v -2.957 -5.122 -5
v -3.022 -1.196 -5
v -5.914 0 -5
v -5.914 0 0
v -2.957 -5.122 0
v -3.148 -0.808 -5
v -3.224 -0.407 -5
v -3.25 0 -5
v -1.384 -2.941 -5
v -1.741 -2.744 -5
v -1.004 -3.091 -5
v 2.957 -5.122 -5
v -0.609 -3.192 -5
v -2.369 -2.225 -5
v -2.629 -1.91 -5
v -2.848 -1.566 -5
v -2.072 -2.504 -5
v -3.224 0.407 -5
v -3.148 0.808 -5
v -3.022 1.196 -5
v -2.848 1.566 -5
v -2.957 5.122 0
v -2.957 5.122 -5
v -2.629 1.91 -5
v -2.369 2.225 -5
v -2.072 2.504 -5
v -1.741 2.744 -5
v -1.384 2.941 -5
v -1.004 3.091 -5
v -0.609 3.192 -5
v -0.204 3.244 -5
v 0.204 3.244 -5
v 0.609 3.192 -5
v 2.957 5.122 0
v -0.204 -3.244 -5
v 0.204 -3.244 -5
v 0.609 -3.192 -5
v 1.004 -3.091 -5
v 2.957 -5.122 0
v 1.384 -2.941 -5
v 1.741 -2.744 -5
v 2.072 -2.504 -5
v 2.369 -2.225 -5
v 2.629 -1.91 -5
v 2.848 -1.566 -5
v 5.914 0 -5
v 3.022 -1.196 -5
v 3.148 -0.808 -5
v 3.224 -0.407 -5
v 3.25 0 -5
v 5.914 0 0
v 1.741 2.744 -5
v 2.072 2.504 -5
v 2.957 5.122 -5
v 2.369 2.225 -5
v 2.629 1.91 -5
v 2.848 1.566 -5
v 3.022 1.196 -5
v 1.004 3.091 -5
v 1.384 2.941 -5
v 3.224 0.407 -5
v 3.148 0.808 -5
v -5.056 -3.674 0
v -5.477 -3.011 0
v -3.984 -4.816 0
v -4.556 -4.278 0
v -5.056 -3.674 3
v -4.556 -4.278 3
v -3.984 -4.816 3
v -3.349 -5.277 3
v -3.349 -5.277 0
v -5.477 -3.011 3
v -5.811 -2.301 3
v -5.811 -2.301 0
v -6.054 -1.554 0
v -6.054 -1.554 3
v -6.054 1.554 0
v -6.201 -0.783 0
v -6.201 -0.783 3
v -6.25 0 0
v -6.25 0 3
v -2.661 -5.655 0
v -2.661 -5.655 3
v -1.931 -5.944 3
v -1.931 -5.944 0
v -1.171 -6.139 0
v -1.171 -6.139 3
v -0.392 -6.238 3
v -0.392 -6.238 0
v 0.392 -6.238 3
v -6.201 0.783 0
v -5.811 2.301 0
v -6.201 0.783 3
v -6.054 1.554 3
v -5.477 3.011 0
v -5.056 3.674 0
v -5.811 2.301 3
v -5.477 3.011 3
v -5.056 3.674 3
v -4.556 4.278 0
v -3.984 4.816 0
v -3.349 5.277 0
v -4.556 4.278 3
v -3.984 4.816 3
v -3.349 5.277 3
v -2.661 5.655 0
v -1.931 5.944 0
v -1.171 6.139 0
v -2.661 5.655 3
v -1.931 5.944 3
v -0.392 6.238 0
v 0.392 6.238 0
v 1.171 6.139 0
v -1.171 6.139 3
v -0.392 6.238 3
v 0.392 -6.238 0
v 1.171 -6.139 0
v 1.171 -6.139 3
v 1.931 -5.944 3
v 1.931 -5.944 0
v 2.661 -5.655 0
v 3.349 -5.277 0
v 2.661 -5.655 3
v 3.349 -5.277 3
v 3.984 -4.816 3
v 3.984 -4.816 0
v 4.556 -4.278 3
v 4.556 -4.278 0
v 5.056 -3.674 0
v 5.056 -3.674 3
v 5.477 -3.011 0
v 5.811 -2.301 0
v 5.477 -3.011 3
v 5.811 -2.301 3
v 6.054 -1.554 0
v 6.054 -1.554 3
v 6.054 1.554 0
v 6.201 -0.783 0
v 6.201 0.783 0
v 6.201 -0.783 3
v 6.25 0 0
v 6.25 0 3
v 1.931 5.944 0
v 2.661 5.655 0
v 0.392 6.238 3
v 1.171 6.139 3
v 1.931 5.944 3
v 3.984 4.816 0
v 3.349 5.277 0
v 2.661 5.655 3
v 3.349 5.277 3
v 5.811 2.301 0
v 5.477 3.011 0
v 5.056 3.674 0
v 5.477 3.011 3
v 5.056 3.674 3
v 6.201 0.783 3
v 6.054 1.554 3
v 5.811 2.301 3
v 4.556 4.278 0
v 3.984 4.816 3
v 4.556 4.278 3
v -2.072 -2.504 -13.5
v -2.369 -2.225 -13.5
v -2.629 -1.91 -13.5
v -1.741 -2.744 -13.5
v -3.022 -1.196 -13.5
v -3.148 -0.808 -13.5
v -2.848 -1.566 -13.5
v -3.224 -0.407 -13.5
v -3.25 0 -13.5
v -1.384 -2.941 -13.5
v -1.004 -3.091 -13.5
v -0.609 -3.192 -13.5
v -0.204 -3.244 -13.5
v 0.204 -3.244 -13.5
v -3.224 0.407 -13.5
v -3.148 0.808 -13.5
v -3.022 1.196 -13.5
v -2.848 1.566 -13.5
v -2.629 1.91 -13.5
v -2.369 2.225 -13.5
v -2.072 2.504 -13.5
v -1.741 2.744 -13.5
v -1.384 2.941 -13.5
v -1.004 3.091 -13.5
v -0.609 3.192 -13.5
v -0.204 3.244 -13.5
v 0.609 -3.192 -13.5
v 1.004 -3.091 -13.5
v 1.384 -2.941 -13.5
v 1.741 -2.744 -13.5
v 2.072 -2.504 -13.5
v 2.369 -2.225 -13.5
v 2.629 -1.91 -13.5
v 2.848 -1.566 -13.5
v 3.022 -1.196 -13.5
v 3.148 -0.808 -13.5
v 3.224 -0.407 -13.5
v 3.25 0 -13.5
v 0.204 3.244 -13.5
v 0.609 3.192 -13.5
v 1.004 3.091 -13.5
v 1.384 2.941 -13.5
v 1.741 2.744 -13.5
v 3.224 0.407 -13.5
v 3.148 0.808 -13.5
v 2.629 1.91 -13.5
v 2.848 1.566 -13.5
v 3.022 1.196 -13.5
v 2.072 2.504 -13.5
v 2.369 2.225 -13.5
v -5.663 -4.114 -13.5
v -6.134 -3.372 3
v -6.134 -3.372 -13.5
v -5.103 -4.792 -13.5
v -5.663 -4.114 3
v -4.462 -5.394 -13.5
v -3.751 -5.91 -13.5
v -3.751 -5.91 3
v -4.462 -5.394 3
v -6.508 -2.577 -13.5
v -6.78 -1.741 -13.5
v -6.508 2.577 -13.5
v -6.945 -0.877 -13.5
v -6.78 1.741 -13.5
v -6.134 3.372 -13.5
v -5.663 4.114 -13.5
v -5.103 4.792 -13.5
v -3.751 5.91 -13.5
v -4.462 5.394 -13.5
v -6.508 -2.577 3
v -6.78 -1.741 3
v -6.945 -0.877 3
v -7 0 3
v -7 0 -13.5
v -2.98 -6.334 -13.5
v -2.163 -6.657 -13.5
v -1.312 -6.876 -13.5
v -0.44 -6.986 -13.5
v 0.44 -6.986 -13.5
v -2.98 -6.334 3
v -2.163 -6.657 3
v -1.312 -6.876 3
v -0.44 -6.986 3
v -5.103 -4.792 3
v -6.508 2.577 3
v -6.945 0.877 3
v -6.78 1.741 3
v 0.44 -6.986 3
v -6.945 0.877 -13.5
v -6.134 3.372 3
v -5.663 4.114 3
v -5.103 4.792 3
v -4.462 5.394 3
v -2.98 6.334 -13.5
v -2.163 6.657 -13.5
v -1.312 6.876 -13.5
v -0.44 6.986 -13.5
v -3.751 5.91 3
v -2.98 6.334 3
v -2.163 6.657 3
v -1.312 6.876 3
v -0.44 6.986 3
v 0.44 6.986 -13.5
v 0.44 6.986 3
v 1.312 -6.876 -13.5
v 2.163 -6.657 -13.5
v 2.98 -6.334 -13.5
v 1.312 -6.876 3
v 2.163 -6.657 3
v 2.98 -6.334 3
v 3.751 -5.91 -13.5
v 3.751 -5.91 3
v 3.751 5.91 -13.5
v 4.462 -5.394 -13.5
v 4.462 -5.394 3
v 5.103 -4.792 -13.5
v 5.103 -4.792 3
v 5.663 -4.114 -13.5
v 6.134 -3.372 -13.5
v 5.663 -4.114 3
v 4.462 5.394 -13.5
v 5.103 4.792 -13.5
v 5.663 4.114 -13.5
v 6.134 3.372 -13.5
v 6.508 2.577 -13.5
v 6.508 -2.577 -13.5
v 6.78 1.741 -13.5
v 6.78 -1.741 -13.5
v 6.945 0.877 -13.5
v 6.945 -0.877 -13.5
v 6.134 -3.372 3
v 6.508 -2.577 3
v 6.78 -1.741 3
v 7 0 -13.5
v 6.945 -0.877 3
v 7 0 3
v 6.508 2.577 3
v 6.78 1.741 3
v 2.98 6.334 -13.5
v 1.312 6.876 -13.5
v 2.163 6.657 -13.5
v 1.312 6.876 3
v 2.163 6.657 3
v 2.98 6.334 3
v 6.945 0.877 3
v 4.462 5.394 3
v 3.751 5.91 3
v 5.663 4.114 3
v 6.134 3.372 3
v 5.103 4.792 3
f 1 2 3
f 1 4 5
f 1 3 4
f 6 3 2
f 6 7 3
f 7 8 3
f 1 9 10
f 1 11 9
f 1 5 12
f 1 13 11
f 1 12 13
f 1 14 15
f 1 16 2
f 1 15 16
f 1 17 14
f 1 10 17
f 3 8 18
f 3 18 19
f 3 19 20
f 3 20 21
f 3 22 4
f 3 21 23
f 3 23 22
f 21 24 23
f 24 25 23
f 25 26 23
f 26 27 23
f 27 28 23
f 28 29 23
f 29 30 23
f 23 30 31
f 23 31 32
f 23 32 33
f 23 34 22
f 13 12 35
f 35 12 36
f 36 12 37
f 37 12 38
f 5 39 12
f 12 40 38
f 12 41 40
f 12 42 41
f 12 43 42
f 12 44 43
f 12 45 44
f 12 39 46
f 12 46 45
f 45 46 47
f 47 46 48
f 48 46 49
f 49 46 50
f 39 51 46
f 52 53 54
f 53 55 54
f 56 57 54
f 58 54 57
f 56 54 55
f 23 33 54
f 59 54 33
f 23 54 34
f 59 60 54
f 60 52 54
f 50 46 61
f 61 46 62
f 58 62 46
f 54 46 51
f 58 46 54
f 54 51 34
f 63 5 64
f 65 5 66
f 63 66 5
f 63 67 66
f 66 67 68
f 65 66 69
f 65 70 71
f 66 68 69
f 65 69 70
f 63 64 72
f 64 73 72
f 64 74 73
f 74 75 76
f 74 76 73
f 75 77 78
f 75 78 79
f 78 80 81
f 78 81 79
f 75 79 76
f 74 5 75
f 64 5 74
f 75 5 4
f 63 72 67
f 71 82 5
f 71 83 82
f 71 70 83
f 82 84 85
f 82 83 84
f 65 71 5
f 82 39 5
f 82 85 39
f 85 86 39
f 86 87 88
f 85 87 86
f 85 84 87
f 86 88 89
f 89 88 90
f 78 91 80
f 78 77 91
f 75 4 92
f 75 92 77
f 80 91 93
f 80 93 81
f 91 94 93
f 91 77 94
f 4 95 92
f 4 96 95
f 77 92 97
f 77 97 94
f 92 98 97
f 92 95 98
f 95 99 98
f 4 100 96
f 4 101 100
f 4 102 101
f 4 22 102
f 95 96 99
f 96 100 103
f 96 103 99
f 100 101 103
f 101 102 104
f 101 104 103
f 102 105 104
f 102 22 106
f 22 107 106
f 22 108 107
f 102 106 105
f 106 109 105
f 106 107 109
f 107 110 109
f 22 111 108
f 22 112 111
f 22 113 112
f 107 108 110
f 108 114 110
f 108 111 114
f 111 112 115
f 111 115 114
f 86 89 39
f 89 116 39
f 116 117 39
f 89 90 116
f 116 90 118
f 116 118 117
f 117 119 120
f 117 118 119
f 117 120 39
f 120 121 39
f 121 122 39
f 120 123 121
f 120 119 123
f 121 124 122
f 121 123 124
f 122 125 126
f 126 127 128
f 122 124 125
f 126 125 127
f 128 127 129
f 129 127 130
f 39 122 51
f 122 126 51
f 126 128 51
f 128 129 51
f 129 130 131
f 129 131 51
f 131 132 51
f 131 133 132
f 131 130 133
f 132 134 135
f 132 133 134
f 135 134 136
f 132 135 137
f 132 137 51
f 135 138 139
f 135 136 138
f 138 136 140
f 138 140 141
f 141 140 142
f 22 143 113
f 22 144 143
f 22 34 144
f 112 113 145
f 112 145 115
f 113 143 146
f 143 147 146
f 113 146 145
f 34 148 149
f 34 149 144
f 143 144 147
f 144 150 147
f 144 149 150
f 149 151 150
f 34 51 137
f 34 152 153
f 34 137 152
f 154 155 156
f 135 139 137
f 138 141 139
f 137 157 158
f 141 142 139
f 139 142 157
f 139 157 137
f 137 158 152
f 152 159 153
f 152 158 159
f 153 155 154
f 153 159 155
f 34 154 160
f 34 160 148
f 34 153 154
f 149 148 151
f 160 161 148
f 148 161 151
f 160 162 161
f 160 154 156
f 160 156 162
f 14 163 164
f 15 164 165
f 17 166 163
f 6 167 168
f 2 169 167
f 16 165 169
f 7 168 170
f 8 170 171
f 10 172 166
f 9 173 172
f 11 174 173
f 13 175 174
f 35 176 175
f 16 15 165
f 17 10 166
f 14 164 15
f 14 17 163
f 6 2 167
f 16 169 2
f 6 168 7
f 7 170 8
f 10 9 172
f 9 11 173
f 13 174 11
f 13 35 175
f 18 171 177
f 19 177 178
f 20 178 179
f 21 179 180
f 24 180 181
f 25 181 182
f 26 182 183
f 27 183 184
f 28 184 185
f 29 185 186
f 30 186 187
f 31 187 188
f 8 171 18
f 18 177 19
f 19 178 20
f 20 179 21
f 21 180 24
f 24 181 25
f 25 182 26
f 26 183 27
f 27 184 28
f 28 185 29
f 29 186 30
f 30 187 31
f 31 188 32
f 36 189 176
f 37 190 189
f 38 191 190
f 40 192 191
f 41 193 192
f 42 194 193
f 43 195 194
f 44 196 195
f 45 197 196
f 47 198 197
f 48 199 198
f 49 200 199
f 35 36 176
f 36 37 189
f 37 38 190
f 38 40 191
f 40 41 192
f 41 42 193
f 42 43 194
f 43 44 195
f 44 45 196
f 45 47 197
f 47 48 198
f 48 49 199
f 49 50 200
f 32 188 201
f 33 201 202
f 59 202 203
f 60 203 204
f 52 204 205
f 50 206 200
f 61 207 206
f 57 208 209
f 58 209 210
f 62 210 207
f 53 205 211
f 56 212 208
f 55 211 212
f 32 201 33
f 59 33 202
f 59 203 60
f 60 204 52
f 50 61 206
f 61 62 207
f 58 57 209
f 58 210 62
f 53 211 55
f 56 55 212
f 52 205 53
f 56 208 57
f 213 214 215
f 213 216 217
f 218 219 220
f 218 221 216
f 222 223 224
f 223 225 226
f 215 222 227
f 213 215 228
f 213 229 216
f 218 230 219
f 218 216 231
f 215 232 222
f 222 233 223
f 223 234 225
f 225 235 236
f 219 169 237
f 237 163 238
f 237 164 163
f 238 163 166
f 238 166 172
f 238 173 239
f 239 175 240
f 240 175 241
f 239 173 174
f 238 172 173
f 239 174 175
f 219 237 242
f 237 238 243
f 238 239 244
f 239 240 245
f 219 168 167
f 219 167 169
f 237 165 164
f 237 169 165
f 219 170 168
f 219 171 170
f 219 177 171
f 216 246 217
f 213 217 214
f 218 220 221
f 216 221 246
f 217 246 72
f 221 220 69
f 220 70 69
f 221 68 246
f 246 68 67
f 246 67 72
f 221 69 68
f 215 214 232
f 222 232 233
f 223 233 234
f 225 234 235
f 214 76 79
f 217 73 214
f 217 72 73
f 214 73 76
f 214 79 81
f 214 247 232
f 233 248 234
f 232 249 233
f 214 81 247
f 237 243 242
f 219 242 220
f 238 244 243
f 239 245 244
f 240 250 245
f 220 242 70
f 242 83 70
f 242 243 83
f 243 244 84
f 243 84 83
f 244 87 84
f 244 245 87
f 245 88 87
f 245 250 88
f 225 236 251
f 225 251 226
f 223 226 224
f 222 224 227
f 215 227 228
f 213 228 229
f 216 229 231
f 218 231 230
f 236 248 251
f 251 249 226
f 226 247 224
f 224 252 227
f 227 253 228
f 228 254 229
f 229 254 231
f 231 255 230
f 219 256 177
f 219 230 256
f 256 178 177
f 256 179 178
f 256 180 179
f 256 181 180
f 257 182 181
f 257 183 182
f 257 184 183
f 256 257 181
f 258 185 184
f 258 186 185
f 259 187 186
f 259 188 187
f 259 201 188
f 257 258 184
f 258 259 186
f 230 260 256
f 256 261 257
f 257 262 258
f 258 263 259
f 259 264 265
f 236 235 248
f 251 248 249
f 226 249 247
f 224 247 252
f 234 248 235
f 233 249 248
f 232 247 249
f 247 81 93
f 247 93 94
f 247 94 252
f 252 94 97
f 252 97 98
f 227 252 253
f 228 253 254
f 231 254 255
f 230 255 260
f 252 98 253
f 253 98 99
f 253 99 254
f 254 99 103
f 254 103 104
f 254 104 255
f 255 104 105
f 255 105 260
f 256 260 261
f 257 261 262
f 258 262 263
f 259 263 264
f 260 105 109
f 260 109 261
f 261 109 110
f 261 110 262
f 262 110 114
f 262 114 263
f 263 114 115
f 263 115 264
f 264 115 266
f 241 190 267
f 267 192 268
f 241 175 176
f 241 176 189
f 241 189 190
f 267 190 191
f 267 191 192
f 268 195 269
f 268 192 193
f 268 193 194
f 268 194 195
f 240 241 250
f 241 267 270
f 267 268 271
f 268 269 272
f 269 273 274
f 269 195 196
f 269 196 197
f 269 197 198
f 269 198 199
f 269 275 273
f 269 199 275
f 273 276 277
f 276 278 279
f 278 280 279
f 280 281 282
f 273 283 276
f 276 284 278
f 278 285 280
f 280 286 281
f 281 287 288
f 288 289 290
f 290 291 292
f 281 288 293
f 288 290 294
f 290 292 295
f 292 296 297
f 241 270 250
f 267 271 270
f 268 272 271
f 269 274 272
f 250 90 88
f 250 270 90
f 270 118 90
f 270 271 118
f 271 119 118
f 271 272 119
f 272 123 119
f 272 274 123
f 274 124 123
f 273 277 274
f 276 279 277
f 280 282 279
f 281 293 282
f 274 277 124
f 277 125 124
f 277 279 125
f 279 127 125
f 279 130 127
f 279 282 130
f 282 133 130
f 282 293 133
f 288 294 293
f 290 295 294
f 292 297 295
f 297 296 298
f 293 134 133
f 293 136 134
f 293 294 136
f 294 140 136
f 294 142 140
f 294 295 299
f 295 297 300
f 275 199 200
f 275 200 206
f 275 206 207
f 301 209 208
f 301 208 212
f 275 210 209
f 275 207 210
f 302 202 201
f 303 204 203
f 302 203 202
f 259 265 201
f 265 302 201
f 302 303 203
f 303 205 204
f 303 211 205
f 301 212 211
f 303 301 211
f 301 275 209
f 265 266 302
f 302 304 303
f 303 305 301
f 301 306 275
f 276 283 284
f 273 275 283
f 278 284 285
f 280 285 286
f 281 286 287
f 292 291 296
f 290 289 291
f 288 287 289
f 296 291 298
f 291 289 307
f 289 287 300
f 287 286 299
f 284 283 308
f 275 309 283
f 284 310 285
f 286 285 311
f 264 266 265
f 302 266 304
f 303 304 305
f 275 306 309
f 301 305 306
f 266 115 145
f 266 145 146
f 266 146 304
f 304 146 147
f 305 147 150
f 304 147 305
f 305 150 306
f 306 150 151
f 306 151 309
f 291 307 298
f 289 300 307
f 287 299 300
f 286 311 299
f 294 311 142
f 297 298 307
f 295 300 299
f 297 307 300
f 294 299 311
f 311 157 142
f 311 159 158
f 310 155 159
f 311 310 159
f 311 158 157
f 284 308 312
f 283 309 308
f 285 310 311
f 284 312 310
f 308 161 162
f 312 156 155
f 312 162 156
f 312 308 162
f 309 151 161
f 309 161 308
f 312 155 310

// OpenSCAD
$fn = 50;

difference() {
	union() {
		translate(v = [0, 0, -13.5]) {
			cylinder(h = 16.5, r = 7.0);
		}
	}
	union() {
		translate(v = [0, 0, 0]) {
			rotate(a = [0, 0, 0]) {
				difference() {
					union() {
						translate(v = [0, 0, -5]) {
							linear_extrude(height = 5) {
								polygon(points = [[5.914249999999999, 0.0], [2.957125, 5.1218907443321156], [-2.9571249999999982, 5.1218907443321156], [-5.914249999999999, 7.242867331857232e-16], [-2.9571250000000022, -5.121890744332115], [2.9571249999999956, -5.121890744332118]]);
							}
						}
					}
					union();
				}
			}
		}
		#cylinder(h = 3, r = 6.25);
		#translate(v = [0, 0, -100.0]) {
			cylinder(h = 200, r = 3.25);
		}
	}
}
